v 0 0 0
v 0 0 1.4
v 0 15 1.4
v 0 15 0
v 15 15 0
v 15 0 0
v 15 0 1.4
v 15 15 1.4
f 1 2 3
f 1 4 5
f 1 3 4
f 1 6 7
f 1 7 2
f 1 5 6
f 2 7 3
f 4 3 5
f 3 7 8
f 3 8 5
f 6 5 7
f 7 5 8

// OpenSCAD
/* Warning, this is a very basic generator with a lot of approximation 
input data : [LFBGA, ATB, 15x15x1.4mm, 217, , B, C04-21129B]
generated by com.zoubworld.electronics.cad.model3d.Basic
Date : Sun Feb 15 10:50:49 CET 2026
*/

//body
color("black")
translate([0,0,0])
cube([15.0,15.0,1.4], center=false);
